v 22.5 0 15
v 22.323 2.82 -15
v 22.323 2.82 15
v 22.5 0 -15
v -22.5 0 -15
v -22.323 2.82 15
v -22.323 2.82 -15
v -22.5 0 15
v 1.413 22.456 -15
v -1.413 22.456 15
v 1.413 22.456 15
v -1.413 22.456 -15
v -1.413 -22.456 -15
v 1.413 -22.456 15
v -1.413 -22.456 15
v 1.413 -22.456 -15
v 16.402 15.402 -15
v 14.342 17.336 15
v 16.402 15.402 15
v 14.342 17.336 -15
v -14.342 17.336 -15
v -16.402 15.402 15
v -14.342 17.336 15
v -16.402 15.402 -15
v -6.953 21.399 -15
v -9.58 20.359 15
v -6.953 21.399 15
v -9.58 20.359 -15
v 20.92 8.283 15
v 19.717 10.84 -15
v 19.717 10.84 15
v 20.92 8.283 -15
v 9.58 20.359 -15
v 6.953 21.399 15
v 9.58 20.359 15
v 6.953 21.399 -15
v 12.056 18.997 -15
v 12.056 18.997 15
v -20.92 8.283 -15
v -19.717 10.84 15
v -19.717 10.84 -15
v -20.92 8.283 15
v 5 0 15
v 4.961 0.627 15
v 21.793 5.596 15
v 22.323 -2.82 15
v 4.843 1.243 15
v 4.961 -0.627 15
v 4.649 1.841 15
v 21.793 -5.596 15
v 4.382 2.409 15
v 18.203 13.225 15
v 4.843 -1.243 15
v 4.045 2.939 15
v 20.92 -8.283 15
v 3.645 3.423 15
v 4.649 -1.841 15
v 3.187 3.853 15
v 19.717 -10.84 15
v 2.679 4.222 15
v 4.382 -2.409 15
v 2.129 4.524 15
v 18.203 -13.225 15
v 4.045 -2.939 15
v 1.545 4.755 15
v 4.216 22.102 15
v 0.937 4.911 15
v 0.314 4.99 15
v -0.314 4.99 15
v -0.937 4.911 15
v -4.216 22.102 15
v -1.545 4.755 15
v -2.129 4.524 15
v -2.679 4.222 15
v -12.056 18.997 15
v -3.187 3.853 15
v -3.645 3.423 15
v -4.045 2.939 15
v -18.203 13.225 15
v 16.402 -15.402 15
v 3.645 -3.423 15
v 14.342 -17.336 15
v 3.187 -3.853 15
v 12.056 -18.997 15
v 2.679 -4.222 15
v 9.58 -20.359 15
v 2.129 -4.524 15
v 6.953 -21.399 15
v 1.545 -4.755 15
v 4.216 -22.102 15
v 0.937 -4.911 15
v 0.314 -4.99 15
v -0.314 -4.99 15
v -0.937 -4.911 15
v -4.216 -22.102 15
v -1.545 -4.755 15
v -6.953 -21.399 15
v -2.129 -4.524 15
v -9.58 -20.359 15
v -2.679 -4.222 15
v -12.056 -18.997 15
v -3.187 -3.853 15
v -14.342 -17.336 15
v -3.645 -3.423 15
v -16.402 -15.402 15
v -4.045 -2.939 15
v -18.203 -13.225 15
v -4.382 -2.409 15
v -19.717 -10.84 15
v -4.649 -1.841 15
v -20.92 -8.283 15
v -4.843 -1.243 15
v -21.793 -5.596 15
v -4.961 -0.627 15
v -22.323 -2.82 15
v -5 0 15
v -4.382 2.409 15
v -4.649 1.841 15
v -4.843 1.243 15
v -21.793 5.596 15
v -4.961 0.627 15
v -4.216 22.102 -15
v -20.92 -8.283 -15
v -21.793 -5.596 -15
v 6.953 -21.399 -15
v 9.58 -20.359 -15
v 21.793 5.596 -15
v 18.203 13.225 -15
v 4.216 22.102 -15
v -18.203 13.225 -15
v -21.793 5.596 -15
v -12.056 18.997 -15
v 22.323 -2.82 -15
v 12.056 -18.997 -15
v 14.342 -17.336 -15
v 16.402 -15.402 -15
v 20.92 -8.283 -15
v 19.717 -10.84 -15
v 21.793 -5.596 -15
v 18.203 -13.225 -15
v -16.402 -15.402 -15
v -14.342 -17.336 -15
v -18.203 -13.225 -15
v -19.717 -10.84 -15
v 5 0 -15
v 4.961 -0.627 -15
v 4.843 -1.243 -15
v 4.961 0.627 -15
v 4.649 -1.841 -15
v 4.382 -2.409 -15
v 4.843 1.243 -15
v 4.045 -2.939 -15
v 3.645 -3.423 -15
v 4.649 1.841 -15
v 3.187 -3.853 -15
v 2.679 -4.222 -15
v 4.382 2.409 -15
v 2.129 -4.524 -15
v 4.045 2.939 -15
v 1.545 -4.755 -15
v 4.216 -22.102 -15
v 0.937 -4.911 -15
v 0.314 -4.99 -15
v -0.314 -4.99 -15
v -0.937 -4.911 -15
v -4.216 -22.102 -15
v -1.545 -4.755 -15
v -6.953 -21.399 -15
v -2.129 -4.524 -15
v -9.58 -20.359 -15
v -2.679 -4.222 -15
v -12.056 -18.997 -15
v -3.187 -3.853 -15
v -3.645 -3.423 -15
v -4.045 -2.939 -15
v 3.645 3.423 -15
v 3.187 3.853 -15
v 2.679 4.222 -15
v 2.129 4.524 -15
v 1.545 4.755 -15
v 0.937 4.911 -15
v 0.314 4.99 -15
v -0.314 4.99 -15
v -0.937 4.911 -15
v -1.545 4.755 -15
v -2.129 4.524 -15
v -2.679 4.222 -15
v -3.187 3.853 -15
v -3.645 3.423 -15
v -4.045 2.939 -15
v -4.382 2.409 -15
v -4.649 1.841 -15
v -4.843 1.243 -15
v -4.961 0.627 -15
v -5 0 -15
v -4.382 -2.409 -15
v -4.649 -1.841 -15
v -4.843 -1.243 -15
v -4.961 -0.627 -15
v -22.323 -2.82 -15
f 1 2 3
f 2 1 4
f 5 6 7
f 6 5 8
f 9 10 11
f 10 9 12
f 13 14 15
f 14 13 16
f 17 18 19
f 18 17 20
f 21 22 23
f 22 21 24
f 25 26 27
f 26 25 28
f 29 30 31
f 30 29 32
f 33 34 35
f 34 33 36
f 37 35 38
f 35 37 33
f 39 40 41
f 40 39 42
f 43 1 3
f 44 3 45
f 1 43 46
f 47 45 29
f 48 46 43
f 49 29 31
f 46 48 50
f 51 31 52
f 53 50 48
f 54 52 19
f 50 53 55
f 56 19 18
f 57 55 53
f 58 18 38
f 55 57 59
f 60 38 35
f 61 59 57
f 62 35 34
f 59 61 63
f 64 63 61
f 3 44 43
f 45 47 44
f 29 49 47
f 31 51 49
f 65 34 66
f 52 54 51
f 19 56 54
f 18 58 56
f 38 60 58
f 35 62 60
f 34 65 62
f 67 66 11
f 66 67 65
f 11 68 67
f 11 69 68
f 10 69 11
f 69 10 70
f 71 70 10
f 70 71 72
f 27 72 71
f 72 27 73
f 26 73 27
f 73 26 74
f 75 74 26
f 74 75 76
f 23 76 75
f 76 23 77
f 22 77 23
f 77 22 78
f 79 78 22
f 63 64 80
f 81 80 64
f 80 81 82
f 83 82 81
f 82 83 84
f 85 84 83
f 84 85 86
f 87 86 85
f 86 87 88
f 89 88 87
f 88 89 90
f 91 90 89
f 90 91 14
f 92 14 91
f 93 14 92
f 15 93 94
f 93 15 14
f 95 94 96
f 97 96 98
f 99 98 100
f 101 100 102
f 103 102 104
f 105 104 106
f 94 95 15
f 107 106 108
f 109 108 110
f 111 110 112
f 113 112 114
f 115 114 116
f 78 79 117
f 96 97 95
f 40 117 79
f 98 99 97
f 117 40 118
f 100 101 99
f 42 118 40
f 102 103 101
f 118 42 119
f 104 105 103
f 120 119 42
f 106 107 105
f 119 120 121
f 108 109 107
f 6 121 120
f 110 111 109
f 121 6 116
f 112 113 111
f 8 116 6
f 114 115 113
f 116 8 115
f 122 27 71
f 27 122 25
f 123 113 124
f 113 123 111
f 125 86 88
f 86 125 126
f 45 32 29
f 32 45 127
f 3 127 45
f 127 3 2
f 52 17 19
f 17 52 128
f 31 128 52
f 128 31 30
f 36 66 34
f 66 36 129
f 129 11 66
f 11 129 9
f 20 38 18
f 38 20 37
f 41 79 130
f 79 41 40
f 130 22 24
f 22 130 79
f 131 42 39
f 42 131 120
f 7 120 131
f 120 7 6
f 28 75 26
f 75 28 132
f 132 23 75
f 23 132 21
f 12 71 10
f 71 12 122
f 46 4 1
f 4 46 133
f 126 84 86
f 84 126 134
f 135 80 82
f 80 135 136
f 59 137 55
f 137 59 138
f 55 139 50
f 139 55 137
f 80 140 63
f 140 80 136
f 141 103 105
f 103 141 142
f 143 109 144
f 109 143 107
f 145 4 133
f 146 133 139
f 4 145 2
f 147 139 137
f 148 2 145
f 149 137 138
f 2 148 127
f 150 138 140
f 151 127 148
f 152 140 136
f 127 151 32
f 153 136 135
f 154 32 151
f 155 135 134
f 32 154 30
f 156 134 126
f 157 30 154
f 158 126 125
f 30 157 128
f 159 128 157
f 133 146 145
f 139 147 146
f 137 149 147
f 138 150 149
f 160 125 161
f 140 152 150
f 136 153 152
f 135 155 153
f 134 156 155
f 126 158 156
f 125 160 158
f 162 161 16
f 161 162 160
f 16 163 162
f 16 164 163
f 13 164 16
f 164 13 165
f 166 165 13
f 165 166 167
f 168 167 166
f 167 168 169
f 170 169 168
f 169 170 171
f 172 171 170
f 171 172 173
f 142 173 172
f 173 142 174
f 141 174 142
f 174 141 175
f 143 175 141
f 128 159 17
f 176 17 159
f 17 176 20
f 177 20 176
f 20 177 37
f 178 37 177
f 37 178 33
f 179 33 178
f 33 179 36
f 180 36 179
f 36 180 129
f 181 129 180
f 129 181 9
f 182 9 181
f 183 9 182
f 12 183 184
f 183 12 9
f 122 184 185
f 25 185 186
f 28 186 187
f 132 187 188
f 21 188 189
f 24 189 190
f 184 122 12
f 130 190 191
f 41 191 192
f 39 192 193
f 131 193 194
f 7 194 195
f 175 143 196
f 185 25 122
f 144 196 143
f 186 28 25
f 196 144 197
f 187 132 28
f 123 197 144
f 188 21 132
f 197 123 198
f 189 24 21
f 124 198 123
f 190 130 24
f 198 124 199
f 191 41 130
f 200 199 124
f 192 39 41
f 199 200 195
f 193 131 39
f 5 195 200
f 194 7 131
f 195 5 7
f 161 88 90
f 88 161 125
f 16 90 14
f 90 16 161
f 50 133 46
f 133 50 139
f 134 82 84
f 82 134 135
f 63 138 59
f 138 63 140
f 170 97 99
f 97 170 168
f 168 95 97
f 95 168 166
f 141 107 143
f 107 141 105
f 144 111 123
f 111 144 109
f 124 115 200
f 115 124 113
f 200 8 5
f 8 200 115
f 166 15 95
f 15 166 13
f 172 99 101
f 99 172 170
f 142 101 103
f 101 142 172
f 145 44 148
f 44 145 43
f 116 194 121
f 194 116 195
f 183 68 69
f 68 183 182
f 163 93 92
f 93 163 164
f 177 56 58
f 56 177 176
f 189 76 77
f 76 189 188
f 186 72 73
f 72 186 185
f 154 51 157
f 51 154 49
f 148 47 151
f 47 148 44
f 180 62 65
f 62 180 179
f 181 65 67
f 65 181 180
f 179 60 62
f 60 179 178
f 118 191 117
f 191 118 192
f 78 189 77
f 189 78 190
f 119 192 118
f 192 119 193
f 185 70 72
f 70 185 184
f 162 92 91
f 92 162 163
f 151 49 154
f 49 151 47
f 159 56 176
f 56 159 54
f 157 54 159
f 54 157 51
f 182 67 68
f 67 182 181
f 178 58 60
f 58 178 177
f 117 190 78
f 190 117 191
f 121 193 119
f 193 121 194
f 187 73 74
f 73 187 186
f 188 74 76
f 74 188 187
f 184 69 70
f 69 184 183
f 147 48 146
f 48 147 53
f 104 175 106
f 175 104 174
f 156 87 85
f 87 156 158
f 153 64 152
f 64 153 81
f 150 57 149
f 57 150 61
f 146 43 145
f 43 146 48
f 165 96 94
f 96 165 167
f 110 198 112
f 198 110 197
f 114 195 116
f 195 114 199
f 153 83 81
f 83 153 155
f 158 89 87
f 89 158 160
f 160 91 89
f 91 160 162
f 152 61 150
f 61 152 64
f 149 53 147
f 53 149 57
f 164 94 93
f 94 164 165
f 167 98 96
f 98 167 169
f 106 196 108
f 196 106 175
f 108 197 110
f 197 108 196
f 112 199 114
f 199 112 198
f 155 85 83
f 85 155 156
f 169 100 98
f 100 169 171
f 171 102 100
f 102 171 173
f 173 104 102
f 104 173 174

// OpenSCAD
$fn = 50;


difference() {
	union() {
		translate(v = [0, 0, -15.0000000000]) {
			cylinder(h = 30, r = 22.5000000000);
		}
	}
	union() {
		translate(v = [0, 0, -100.0000000000]) {
			cylinder(h = 200, r = 5);
		}
	}
}
